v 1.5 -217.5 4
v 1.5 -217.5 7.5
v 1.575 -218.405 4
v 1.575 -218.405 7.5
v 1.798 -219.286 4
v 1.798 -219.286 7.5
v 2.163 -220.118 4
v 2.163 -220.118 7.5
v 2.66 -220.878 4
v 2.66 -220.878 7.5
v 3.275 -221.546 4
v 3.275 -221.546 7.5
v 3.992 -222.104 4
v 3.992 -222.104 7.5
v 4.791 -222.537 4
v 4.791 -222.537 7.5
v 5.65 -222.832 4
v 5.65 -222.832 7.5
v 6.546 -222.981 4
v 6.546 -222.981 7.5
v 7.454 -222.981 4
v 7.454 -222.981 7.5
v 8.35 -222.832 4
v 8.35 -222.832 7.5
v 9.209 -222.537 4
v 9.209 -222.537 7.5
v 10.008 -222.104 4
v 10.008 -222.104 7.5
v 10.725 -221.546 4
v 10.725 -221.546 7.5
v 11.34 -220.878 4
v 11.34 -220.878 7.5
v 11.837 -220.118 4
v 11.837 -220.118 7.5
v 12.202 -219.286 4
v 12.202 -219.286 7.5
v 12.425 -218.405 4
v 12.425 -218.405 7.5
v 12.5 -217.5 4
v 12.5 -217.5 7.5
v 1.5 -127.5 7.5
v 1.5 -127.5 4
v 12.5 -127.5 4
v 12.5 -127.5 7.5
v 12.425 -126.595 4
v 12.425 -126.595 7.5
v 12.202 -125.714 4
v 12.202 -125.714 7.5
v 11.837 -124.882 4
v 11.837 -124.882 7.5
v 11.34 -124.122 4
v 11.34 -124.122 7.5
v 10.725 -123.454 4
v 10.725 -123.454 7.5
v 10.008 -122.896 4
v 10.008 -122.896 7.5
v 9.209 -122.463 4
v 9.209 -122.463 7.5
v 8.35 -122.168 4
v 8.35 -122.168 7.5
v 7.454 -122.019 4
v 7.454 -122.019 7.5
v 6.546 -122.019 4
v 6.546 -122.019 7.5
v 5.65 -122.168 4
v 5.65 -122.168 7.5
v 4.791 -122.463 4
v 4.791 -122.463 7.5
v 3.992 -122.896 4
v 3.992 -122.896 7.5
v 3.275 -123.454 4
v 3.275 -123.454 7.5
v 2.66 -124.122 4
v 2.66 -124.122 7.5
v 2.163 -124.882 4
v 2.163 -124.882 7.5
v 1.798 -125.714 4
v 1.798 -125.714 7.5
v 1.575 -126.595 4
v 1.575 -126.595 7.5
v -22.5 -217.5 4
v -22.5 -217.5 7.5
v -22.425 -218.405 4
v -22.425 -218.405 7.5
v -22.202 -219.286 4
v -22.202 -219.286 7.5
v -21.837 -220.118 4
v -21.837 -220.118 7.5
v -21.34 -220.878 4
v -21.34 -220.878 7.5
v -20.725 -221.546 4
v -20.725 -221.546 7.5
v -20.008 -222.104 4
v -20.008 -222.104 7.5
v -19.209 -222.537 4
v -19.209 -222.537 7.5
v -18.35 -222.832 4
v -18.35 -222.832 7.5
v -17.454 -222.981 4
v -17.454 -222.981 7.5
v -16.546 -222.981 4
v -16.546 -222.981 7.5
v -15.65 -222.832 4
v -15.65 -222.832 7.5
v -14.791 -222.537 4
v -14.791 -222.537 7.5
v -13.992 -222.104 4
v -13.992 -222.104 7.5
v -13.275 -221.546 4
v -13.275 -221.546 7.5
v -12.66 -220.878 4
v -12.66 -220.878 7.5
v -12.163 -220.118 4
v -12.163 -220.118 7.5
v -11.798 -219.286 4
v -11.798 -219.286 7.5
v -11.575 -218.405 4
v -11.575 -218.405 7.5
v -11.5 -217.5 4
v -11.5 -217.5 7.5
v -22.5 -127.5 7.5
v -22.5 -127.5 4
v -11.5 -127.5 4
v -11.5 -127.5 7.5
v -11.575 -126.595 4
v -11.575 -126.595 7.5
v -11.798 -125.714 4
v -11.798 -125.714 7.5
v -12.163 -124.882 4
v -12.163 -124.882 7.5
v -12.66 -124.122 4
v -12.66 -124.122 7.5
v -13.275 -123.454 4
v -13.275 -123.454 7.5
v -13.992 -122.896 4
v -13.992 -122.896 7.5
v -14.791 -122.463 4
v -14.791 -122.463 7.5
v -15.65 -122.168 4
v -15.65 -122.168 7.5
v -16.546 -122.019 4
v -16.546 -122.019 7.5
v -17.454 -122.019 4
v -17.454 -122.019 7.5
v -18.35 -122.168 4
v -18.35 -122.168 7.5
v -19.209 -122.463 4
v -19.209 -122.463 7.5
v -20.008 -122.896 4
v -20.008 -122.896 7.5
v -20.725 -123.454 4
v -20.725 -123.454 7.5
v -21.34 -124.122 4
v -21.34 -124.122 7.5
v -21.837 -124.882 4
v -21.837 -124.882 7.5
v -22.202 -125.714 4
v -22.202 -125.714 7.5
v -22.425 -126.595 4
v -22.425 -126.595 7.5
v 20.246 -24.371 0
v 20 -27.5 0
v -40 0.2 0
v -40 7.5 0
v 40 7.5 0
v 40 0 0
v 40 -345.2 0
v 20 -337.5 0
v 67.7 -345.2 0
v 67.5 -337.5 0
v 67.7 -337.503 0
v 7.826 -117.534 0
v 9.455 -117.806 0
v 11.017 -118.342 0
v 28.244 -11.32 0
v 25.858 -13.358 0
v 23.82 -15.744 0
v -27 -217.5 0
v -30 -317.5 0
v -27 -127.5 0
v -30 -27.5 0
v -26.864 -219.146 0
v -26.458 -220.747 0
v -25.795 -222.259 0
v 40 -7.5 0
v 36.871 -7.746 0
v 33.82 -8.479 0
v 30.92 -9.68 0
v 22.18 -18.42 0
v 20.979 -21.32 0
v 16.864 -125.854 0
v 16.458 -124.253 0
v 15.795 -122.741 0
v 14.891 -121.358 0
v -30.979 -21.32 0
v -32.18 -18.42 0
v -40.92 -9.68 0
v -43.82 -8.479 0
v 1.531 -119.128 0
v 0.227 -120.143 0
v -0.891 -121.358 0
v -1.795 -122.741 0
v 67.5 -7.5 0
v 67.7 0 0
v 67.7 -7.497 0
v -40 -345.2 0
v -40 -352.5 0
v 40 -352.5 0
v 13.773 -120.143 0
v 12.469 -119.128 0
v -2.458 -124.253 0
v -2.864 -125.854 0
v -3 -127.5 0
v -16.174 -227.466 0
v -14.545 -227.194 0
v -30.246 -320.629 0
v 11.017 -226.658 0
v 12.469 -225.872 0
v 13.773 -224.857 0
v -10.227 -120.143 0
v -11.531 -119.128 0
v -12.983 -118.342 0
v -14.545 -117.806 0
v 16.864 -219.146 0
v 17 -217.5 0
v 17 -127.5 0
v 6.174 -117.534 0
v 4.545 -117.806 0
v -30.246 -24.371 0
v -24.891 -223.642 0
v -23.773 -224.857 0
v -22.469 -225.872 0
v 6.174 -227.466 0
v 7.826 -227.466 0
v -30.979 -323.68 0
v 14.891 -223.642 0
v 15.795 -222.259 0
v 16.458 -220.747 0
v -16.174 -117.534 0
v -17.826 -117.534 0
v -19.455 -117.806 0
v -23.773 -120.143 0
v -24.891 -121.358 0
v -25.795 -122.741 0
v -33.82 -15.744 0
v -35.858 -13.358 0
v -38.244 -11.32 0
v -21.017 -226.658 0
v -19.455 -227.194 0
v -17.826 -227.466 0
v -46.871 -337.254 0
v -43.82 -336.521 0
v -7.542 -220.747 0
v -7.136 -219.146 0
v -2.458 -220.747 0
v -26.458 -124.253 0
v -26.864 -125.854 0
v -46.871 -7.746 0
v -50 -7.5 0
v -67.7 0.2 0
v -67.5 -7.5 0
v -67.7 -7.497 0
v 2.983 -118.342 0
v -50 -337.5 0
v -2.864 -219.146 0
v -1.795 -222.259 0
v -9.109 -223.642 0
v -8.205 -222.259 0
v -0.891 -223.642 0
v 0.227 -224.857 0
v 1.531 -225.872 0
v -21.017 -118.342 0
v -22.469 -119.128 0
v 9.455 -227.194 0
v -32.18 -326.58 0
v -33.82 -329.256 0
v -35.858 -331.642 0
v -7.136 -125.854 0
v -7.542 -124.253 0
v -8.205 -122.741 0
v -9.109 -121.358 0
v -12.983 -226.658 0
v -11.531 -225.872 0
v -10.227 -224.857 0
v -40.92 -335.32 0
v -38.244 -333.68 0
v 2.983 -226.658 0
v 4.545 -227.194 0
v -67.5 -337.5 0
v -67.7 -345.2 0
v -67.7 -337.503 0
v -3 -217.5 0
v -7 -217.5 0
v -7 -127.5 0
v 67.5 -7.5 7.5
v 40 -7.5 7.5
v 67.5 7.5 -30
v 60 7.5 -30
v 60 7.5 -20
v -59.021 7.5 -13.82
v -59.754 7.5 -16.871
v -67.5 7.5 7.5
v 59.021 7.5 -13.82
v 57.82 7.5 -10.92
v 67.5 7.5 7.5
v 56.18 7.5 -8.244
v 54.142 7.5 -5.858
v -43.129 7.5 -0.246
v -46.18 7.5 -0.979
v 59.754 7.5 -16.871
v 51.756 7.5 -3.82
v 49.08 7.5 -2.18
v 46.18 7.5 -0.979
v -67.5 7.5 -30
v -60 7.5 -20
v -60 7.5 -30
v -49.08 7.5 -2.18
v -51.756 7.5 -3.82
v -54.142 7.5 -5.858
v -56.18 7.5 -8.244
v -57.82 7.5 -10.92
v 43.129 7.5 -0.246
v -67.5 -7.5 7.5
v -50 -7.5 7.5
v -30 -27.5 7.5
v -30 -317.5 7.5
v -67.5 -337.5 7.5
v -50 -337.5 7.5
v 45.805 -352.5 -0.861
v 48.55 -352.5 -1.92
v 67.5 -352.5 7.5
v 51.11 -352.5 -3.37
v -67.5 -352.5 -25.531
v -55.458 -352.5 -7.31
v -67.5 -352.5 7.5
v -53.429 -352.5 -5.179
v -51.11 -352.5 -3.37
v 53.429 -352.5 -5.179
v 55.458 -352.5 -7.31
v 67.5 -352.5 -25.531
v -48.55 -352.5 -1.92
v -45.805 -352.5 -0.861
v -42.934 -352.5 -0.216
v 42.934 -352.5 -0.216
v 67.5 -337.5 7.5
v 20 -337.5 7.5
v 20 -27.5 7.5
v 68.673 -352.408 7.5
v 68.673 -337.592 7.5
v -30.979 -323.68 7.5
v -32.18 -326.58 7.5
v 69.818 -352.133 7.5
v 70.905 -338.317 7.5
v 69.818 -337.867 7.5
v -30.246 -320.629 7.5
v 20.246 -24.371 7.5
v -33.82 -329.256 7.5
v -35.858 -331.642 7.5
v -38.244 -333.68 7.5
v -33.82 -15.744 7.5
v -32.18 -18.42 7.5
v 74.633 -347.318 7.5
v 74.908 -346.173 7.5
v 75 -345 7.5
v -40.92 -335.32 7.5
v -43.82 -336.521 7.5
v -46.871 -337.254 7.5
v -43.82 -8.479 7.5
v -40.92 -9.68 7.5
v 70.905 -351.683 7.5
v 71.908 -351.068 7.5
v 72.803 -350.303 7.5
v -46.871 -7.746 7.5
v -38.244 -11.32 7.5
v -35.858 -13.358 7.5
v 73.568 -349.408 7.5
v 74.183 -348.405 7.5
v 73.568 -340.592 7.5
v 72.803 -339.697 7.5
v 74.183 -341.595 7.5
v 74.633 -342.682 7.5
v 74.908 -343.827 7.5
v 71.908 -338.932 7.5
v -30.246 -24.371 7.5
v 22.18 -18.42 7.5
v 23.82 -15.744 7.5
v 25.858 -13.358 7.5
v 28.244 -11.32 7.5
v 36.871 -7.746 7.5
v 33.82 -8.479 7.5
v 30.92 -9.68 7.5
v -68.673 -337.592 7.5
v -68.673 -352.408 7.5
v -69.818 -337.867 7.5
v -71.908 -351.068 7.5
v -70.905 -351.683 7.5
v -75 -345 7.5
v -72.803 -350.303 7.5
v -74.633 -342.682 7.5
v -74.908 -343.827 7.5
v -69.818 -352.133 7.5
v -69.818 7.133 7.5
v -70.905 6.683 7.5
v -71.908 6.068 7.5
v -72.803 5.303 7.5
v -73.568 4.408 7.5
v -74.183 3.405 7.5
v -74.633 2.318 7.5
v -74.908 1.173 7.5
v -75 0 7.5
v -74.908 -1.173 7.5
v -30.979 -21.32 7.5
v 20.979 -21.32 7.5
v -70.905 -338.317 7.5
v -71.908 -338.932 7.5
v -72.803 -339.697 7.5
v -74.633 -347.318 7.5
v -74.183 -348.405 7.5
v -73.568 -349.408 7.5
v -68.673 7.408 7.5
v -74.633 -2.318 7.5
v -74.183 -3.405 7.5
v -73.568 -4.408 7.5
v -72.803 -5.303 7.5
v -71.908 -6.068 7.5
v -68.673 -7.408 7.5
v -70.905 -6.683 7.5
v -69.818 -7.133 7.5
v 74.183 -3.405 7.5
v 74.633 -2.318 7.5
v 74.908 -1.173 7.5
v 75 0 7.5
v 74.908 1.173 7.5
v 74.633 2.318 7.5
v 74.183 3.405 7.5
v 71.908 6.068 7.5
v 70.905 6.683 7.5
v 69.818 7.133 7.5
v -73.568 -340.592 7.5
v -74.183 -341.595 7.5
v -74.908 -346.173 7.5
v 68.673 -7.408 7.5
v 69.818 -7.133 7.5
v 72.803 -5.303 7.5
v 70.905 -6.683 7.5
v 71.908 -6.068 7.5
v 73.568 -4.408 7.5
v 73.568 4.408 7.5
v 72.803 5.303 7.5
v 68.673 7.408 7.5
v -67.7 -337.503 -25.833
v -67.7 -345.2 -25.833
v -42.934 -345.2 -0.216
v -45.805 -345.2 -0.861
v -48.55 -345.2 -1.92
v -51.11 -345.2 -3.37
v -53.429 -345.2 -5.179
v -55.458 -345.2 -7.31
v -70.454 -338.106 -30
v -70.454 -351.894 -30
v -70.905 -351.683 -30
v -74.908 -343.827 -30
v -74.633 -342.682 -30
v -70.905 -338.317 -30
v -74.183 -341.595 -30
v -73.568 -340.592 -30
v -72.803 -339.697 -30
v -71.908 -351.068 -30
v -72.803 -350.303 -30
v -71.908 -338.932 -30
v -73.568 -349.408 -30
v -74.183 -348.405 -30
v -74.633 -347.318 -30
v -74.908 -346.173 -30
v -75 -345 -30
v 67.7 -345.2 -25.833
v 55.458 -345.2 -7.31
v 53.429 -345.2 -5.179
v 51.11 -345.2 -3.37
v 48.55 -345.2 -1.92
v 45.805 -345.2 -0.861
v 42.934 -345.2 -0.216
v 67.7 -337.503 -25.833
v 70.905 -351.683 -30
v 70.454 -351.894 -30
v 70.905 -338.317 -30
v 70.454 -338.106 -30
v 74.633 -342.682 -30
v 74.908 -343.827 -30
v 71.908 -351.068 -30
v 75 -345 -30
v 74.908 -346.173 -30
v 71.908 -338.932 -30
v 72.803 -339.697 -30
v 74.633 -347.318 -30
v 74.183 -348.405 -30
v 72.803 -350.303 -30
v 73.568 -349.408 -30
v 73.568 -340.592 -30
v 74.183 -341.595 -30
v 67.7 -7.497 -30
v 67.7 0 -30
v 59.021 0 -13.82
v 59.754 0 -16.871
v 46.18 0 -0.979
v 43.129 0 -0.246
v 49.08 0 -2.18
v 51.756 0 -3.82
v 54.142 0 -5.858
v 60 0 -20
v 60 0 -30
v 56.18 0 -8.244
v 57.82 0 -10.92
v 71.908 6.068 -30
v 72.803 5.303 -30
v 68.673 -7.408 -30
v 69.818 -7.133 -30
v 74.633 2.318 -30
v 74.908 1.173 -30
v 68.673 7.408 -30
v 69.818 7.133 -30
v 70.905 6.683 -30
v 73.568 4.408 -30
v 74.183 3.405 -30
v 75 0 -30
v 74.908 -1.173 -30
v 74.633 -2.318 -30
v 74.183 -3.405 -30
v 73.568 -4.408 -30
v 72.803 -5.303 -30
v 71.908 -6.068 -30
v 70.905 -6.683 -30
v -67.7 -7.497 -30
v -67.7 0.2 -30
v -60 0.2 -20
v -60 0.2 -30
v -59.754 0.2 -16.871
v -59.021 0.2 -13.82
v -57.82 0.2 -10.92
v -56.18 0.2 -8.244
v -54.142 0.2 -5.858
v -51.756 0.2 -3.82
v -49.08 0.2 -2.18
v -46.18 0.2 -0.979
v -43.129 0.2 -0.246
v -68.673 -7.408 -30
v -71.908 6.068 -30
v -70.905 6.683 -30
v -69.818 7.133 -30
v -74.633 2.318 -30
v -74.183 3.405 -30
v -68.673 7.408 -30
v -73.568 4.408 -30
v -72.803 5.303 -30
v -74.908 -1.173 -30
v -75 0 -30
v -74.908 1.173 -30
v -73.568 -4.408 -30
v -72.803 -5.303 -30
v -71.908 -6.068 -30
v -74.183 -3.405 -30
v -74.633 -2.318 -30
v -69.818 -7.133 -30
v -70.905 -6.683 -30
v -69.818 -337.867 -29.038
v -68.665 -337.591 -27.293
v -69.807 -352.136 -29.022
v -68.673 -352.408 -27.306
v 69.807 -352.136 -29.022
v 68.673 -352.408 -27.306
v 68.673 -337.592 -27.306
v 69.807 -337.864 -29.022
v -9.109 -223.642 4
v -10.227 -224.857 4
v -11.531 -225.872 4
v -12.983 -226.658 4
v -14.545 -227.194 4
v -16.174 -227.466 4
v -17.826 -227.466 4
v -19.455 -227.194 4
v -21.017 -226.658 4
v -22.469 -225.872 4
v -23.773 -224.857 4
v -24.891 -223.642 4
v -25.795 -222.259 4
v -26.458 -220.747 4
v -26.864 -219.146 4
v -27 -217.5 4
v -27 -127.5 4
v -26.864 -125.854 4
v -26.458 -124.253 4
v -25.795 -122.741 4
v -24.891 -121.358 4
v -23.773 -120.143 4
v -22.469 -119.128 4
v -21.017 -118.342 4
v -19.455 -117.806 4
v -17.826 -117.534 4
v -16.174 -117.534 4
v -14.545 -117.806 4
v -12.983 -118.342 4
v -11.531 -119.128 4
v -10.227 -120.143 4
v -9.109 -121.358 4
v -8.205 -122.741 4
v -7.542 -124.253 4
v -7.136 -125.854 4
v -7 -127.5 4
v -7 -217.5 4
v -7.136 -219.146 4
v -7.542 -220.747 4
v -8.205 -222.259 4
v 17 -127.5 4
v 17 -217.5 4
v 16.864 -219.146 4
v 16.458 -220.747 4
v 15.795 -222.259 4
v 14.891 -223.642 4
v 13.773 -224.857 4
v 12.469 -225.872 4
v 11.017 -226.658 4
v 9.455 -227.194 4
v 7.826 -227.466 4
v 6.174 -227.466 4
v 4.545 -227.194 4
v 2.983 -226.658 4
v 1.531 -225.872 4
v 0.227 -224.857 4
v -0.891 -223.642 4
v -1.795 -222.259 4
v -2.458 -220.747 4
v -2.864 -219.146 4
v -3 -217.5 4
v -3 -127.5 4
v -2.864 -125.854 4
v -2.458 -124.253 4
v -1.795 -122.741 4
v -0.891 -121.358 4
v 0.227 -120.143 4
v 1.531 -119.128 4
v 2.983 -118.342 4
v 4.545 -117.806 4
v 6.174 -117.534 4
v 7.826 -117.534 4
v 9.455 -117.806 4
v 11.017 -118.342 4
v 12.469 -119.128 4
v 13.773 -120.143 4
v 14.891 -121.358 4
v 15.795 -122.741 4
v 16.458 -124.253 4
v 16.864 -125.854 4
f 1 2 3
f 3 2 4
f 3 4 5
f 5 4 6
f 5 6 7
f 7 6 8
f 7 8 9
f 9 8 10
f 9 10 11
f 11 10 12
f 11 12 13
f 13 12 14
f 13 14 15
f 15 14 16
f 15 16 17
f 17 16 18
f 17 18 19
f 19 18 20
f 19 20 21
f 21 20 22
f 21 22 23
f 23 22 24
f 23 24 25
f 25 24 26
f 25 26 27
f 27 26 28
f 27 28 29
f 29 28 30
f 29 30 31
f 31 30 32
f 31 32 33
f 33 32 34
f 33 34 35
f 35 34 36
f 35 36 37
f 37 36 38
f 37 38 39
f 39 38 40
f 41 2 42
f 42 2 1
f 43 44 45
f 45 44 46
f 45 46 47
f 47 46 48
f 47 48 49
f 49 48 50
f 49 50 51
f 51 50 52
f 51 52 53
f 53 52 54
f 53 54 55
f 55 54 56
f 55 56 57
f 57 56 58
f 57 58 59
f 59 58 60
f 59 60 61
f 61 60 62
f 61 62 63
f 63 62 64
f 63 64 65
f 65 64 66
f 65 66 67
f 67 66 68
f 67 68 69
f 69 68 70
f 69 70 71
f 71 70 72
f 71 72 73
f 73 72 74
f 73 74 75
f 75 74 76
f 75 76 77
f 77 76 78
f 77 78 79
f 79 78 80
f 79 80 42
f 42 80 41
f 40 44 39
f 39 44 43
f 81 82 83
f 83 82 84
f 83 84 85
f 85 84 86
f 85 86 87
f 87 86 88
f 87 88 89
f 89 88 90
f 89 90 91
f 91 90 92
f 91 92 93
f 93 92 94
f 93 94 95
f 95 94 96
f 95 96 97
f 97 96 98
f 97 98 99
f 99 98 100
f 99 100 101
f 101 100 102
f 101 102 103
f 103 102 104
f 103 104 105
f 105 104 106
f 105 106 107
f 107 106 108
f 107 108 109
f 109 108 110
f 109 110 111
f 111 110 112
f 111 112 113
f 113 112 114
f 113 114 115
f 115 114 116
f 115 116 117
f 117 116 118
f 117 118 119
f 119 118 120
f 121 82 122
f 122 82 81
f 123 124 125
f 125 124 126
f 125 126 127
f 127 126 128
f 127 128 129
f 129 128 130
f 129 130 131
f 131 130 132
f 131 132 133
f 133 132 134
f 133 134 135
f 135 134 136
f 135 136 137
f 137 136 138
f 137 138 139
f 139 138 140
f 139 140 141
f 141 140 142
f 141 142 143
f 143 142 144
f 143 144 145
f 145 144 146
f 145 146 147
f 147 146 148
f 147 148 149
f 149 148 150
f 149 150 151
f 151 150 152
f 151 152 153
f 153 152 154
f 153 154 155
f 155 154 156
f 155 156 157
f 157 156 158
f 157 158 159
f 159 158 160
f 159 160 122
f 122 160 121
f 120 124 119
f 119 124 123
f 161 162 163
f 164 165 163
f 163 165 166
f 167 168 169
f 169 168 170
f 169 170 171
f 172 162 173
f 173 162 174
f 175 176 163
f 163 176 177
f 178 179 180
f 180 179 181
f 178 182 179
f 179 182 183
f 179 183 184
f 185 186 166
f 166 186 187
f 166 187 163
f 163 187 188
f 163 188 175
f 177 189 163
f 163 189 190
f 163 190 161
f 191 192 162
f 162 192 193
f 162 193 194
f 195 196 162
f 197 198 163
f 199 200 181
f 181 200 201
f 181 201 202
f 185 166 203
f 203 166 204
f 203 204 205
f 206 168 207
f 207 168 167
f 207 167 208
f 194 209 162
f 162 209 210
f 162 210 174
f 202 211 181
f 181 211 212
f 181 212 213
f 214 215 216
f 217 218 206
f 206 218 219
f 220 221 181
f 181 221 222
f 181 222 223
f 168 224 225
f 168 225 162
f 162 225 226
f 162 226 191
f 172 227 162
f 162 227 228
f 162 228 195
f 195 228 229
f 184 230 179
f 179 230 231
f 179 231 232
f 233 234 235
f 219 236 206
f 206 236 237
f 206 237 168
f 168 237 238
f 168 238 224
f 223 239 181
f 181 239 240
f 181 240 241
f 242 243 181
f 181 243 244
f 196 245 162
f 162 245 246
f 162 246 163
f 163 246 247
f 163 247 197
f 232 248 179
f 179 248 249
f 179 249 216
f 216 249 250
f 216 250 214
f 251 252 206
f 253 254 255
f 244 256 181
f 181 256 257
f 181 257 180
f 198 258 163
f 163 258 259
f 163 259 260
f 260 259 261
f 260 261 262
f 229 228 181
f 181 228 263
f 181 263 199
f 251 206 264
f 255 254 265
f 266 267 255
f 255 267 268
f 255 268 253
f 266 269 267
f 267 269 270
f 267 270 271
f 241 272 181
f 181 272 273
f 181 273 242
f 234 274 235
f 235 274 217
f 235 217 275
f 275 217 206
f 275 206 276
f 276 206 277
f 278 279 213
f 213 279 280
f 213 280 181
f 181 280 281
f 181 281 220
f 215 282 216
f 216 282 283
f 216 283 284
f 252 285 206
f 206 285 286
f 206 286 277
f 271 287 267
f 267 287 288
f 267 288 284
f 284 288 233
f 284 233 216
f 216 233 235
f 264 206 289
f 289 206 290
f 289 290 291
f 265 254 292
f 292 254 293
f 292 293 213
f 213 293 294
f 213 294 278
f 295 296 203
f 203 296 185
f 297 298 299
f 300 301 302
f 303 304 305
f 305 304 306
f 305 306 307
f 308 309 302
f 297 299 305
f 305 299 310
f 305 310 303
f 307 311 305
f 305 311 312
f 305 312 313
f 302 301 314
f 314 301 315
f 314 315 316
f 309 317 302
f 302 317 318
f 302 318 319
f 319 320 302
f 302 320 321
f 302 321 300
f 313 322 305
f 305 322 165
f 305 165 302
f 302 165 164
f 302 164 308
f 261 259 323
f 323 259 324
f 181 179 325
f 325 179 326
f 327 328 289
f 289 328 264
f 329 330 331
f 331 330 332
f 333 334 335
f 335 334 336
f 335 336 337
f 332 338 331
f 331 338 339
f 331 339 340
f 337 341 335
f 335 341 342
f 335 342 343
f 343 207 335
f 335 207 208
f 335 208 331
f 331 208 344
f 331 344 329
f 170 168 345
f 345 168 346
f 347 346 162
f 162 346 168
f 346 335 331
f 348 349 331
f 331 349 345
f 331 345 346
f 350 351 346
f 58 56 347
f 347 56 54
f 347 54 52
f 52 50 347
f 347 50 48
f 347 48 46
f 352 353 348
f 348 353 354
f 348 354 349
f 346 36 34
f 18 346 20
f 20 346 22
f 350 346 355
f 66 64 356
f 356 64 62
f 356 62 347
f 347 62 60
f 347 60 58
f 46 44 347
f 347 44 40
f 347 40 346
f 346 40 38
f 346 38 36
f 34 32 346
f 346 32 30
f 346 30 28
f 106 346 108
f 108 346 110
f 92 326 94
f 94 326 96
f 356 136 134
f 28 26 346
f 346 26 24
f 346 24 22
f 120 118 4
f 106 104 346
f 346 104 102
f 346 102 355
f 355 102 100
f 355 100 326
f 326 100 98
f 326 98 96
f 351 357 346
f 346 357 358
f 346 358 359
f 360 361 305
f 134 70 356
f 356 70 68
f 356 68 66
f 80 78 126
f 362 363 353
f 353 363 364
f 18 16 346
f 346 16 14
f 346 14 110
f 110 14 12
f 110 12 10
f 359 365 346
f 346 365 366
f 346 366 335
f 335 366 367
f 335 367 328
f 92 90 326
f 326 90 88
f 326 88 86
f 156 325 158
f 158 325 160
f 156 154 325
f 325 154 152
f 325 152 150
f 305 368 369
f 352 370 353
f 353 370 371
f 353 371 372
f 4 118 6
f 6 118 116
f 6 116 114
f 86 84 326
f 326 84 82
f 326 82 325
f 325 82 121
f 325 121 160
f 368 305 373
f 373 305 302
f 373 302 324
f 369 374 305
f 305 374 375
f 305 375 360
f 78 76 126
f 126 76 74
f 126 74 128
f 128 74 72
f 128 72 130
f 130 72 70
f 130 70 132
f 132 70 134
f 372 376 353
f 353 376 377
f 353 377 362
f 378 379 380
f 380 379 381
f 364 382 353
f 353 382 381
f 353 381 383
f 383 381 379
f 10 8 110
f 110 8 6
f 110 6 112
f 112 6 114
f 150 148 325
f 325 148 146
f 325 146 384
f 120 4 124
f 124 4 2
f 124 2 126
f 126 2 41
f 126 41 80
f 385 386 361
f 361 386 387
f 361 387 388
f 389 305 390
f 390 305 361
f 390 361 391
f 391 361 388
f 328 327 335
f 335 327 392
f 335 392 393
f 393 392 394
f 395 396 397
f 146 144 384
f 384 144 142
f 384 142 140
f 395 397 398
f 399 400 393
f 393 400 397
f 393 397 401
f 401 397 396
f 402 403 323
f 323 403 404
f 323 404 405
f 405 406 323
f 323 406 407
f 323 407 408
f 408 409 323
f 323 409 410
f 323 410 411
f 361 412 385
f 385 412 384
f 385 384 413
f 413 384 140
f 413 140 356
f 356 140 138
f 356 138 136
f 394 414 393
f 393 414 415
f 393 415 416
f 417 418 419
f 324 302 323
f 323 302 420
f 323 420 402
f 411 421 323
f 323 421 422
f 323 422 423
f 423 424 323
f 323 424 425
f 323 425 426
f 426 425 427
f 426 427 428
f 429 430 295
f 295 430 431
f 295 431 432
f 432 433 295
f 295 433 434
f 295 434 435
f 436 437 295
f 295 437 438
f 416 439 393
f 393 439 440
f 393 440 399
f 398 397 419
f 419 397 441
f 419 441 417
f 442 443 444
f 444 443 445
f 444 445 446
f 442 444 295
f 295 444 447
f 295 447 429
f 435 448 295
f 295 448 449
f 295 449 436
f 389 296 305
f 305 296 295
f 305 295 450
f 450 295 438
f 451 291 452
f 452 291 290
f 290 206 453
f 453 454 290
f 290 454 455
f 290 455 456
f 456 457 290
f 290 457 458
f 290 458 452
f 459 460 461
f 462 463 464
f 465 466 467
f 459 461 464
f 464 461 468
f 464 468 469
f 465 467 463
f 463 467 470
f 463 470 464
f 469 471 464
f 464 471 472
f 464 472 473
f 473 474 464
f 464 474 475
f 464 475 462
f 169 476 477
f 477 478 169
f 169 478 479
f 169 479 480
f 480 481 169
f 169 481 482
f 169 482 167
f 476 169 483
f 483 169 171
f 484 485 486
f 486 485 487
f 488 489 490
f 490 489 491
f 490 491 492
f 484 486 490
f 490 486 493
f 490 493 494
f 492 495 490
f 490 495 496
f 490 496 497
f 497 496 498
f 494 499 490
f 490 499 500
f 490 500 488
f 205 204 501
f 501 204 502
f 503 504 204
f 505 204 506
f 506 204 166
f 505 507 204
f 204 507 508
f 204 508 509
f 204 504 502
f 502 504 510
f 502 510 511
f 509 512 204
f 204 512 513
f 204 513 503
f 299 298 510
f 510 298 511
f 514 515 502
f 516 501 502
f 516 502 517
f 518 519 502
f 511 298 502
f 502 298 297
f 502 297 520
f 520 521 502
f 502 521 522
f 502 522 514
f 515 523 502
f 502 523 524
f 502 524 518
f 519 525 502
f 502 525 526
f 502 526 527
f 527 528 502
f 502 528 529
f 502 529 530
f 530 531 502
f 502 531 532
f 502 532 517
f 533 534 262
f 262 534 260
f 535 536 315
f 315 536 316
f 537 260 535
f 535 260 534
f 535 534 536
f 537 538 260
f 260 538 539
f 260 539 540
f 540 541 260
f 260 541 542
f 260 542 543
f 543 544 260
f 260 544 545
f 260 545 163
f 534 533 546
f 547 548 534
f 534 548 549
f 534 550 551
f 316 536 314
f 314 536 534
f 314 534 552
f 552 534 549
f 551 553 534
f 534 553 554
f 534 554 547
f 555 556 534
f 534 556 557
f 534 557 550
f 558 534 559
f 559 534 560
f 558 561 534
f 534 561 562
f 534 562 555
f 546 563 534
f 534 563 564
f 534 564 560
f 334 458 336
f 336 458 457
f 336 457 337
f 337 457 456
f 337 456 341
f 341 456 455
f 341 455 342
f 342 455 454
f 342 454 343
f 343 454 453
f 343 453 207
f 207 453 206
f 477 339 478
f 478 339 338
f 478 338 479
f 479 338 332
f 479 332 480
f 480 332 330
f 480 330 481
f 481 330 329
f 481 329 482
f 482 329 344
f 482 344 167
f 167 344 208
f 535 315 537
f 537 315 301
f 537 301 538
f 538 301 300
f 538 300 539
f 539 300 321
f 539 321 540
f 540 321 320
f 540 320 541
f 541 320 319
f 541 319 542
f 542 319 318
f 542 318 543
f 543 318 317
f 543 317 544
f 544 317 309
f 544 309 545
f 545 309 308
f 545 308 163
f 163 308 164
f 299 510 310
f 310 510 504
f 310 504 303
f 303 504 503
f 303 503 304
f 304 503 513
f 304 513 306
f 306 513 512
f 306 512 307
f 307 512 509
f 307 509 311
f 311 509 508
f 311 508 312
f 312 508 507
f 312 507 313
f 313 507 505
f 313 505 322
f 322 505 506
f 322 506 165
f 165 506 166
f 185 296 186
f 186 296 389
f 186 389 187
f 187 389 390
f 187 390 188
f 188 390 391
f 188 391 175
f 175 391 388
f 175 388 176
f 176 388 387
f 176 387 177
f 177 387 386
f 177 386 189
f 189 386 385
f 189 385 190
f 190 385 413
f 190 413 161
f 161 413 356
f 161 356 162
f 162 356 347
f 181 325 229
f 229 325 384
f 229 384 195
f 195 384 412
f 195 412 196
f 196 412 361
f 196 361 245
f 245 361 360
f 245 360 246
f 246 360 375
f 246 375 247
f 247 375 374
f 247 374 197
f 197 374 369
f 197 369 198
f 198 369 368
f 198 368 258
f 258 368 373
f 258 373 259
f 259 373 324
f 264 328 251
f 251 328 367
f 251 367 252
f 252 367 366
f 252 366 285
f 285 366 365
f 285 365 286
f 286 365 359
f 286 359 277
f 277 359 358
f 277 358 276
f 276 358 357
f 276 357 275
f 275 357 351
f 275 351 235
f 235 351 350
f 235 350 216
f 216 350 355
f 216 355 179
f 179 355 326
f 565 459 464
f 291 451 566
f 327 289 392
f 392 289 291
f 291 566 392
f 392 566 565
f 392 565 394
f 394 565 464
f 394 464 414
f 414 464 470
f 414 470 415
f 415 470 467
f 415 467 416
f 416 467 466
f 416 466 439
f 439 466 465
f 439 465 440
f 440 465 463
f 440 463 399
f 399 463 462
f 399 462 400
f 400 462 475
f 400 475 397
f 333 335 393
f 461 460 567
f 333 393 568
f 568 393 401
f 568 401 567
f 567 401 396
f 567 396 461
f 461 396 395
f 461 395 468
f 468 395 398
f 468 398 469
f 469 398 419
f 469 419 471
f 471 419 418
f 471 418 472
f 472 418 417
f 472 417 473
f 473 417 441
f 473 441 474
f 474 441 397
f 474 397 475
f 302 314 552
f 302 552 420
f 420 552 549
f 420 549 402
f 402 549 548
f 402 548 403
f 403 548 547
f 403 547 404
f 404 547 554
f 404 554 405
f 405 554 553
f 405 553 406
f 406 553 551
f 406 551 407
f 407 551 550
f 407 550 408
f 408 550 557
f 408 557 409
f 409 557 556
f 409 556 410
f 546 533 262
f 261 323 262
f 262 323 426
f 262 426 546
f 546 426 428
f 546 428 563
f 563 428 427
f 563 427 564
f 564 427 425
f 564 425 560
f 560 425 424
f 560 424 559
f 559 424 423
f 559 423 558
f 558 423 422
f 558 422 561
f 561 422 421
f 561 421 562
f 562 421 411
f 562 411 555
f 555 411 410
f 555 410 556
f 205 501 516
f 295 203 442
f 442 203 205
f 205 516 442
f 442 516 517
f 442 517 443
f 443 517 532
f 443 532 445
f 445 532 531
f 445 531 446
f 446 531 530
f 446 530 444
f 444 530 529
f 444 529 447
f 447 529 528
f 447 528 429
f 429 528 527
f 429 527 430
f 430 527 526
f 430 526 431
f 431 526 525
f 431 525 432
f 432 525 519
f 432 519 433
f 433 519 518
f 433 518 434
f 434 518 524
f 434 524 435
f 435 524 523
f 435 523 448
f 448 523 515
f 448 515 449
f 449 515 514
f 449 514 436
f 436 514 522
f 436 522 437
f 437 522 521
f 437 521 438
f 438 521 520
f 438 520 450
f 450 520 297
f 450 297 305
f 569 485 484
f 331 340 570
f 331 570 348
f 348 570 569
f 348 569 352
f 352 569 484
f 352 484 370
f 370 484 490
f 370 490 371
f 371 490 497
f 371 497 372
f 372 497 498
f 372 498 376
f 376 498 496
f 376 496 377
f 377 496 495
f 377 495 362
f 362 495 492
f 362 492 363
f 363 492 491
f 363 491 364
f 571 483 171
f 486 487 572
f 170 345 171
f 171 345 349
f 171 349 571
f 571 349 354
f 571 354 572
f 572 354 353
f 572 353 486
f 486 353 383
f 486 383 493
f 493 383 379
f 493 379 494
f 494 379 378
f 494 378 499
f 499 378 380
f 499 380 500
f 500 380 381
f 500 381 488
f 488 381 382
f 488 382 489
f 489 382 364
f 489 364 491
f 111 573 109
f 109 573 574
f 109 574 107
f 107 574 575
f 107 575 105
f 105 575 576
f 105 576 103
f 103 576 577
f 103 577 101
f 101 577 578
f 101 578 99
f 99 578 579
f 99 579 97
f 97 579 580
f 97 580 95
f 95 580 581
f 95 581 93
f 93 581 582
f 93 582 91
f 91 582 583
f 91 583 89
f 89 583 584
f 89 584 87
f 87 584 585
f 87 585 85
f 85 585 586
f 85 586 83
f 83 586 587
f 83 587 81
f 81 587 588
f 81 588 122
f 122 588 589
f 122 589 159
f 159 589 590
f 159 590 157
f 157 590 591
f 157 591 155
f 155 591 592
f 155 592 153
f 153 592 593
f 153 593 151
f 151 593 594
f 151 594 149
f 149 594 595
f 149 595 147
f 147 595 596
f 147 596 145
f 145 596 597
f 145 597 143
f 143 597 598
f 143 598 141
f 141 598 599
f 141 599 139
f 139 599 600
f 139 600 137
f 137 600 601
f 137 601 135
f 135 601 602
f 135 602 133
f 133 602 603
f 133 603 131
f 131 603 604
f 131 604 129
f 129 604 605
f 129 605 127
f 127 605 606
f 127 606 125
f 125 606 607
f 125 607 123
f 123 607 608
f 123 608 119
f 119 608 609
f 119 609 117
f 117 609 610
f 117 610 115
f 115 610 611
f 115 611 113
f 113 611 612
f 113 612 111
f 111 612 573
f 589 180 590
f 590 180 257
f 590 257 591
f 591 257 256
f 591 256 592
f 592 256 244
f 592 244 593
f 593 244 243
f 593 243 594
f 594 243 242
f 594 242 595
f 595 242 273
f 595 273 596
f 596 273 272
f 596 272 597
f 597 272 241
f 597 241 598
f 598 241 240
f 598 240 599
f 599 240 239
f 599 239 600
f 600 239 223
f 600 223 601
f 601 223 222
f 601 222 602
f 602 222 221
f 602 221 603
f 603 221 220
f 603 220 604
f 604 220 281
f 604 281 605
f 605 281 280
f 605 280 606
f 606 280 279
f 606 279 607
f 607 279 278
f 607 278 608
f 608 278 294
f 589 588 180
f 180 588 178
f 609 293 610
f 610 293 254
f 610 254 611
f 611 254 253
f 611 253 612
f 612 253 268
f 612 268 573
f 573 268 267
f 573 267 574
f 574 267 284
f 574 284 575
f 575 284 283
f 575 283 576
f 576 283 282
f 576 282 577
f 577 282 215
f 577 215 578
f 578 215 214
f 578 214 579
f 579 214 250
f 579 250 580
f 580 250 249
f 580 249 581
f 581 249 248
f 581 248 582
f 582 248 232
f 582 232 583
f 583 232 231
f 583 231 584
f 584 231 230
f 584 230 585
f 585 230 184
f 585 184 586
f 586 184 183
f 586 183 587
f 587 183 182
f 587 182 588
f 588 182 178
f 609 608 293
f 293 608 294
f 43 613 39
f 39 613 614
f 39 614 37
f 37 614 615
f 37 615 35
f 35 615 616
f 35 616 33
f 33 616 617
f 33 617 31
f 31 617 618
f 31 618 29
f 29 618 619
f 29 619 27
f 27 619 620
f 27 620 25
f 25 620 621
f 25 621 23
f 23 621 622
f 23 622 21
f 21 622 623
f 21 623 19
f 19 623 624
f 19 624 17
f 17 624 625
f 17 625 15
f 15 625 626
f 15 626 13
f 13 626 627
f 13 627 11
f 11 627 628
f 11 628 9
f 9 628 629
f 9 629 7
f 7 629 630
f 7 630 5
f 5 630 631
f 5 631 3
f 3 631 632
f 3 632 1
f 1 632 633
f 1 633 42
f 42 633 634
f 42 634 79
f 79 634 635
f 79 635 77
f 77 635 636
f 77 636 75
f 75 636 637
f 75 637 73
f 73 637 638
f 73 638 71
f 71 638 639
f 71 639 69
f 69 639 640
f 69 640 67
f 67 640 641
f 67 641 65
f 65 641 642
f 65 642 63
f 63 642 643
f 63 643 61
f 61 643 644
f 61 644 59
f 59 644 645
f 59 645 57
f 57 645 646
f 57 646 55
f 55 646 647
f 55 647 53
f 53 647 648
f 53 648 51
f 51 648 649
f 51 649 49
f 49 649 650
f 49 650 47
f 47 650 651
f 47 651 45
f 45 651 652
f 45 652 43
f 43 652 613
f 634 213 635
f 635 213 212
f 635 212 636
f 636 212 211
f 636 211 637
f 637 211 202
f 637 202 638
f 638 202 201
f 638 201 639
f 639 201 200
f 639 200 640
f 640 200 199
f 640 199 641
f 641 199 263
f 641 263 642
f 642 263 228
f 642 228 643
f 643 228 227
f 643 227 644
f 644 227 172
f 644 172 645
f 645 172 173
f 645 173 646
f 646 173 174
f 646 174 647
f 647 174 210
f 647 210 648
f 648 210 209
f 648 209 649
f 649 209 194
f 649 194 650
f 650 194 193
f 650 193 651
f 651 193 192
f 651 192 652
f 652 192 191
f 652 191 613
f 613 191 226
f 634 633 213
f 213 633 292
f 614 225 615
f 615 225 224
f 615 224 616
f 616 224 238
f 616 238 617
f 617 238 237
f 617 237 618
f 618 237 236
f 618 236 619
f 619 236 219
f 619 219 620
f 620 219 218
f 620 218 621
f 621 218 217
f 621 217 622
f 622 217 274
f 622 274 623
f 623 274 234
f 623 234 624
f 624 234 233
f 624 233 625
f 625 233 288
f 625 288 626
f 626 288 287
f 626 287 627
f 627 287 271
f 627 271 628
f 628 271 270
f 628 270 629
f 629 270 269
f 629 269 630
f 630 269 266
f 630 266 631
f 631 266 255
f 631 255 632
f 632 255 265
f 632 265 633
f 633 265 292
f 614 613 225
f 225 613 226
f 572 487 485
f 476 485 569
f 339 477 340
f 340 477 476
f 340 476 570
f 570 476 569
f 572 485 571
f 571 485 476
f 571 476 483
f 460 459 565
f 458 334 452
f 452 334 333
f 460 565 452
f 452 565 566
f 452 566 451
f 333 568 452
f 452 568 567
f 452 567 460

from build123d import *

# Parameters (mm, degrees)
BOSS_EXTRUDE1_DEPTH = 7.5
BOSS_EXTRUDE2_DEPTH = 30
FILLET1_R           = 20
FILLET2_R           = 20
FILLET4_R           = 7.5
CUT_EXTRUDE1_DEPTH  = 363.336169875
CUT_EXTRUDE2_DEPTH  = 4
CHAMFER1_START      = -352.5
CHAMFER1_DEPTH      = 15.5
CHAMFER1_2_DEPTH    = 7.3


with BuildPart() as part:
    # Sketch1 → Boss-Extrude1 (new body)
    with BuildSketch(Plane.XY):
        Polygon((-75, -337.5), (-30, -337.5), (-30, -7.5), (-75, -7.5), (-75, 7.5), (75, 7.5), (75, -7.5), (20, -7.5), (20, -337.5), (75, -337.5), (75, -352.5), (-75, -352.5), align=None)
    extrude(amount=BOSS_EXTRUDE1_DEPTH)

    # Sketch2 → Boss-Extrude2 (add)
    with BuildSketch(Plane(origin=(0, 0, 0), x_dir=(-1, 0, 0), z_dir=(0, 0, -1))):
        Polygon((67.7, -337.5), (67.7, -345.2), (60, -345.2), (60, -352.5), (75, -352.5), (75, -337.5), align=None)
        Polygon((-67.7, -337.5), (-67.7, -345.2), (-60, -345.2), (-60, -352.5), (-75, -352.5), (-75, -337.5), align=None)
        Polygon((-67.7, -7.5), (-75, -7.5), (-75, 7.5), (-60, 7.5), (-60, 0), (-67.7, 0), align=None)
        Polygon((67.7, -7.5), (75, -7.5), (75, 7.5), (60, 7.5), (60, 0.2), (67.7, 0.2), align=None)
    extrude(amount=BOSS_EXTRUDE2_DEPTH)

    # Fillet1
    fillet1_edges = [part.edges().sort_by_distance(p)[0] for p in [
        (-60, -348.85, 0),
        (60, -348.85, 0),
        (60, 3.75, 0),
        (-60, 3.85, 0),
    ]]
    fillet(fillet1_edges, radius=FILLET1_R)

    # Fillet2
    fillet2_edges = [part.edges().sort_by_distance(p)[0] for p in [
        (20, -7.5, 3.75),
        (-30, -337.5, 3.75),
        (-30, -7.5, 3.75),
    ]]
    fillet(fillet2_edges, radius=FILLET2_R)

    # Fillet4
    fillet4_edges = [part.edges().sort_by_distance(p)[0] for p in [
        (-75, -352.5, -11.25),
        (-75, -337.5, -11.25),
        (-75, -7.5, -11.25),
        (-75, 7.5, -11.25),
        (75, 7.5, -11.25),
        (75, -7.5, -11.25),
        (75, -337.5, -11.25),
        (75, -352.5, -11.25),
    ]]
    fillet(fillet4_edges, radius=FILLET4_R - 0.0001)  # a hair under: the kernel refuses the full size

    # Sketch3 → Cut-Extrude1 (cut, through all)
    with BuildSketch(Plane.XY.offset(7.5)):
        with BuildLine():
            Line((-22.5, -217.5), (-22.5, -127.5))
            ThreePointArc((-22.5, -127.5), (-17, -122), (-11.5, -127.5))
            Line((-11.5, -127.5), (-11.5, -217.5))
            ThreePointArc((-11.5, -217.5), (-17, -223), (-22.5, -217.5))
        make_face()
        with BuildLine():
            Line((1.5, -217.5), (1.5, -127.5))
            ThreePointArc((1.5, -127.5), (7, -122), (12.5, -127.5))
            Line((12.5, -127.5), (12.5, -217.5))
            ThreePointArc((12.5, -217.5), (7, -223), (1.5, -217.5))
        make_face()
    extrude(amount=-CUT_EXTRUDE1_DEPTH, mode=Mode.SUBTRACT)

    # Sketch4 → Cut-Extrude2 (cut)
    with BuildSketch(Plane(origin=(0, 0, 0), x_dir=(-1, 0, 0), z_dir=(0, 0, -1))):
        with BuildLine():
            Line((27, -127.5), (27, -217.5))
            ThreePointArc((27, -217.5), (17, -227.5), (7, -217.5))
            Line((7, -217.5), (7, -127.5))
            ThreePointArc((7, -127.5), (17, -117.5), (27, -127.5))
        make_face()
        with BuildLine():
            Line((3, -127.5), (3, -217.5))
            ThreePointArc((3, -217.5), (-7, -227.5), (-17, -217.5))
            Line((-17, -217.5), (-17, -127.5))
            ThreePointArc((-17, -127.5), (-7, -117.5), (3, -127.5))
        make_face()
    extrude(amount=-CUT_EXTRUDE2_DEPTH, mode=Mode.SUBTRACT)

    # Chamfer1: read off the stored shape, not the designer's step
    # Chamfer1 outline → Chamfer1 (cut)
    with BuildSketch(Plane(origin=(0, 0, 0), x_dir=(1, 0, 0), z_dir=(0, 1, 0)).offset(CHAMFER1_START)):
        with BuildLine():
            Line((70.453642879, 30), (60, 30))
            Line((60, 30), (60, 20))
            ThreePointArc((60, 20), (59.425347085, 15.240179557), (57.734410936, 10.753883584))
            Line((57.734410936, 10.753883584), (70.453642879, 30))
        make_face()
        with BuildLine():
            ThreePointArc((-57.734410936, 10.753883584), (-59.425347085, 15.240179557), (-60, 20))
            Line((-60, 20), (-60, 30))
            Line((-60, 30), (-70.453642879, 30))
            Line((-70.453642879, 30), (-57.734410936, 10.753883584))
        make_face()
    extrude(amount=CHAMFER1_DEPTH, mode=Mode.SUBTRACT)

    # Chamfer1 2 outline → Chamfer1 2 (add)
    with BuildSketch(Plane(origin=(0, 0, 0), x_dir=(1, 0, 0), z_dir=(0, 1, 0)).offset(CHAMFER1_START)):
        with BuildLine():
            ThreePointArc((55.458381501, 7.309907748), (56.685490998, 8.973015363), (57.734410936, 10.753883584))
            Line((57.734410936, 10.753883584), (55.458381501, 7.309907748))
        make_face()
        with BuildLine():
            ThreePointArc((-57.734410936, 10.753883584), (-56.685490998, 8.973015363), (-55.458381501, 7.309907748))
            Line((-55.458381501, 7.309907748), (-57.734410936, 10.753883584))
        make_face()
    extrude(amount=CHAMFER1_2_DEPTH)


solid = part.part
